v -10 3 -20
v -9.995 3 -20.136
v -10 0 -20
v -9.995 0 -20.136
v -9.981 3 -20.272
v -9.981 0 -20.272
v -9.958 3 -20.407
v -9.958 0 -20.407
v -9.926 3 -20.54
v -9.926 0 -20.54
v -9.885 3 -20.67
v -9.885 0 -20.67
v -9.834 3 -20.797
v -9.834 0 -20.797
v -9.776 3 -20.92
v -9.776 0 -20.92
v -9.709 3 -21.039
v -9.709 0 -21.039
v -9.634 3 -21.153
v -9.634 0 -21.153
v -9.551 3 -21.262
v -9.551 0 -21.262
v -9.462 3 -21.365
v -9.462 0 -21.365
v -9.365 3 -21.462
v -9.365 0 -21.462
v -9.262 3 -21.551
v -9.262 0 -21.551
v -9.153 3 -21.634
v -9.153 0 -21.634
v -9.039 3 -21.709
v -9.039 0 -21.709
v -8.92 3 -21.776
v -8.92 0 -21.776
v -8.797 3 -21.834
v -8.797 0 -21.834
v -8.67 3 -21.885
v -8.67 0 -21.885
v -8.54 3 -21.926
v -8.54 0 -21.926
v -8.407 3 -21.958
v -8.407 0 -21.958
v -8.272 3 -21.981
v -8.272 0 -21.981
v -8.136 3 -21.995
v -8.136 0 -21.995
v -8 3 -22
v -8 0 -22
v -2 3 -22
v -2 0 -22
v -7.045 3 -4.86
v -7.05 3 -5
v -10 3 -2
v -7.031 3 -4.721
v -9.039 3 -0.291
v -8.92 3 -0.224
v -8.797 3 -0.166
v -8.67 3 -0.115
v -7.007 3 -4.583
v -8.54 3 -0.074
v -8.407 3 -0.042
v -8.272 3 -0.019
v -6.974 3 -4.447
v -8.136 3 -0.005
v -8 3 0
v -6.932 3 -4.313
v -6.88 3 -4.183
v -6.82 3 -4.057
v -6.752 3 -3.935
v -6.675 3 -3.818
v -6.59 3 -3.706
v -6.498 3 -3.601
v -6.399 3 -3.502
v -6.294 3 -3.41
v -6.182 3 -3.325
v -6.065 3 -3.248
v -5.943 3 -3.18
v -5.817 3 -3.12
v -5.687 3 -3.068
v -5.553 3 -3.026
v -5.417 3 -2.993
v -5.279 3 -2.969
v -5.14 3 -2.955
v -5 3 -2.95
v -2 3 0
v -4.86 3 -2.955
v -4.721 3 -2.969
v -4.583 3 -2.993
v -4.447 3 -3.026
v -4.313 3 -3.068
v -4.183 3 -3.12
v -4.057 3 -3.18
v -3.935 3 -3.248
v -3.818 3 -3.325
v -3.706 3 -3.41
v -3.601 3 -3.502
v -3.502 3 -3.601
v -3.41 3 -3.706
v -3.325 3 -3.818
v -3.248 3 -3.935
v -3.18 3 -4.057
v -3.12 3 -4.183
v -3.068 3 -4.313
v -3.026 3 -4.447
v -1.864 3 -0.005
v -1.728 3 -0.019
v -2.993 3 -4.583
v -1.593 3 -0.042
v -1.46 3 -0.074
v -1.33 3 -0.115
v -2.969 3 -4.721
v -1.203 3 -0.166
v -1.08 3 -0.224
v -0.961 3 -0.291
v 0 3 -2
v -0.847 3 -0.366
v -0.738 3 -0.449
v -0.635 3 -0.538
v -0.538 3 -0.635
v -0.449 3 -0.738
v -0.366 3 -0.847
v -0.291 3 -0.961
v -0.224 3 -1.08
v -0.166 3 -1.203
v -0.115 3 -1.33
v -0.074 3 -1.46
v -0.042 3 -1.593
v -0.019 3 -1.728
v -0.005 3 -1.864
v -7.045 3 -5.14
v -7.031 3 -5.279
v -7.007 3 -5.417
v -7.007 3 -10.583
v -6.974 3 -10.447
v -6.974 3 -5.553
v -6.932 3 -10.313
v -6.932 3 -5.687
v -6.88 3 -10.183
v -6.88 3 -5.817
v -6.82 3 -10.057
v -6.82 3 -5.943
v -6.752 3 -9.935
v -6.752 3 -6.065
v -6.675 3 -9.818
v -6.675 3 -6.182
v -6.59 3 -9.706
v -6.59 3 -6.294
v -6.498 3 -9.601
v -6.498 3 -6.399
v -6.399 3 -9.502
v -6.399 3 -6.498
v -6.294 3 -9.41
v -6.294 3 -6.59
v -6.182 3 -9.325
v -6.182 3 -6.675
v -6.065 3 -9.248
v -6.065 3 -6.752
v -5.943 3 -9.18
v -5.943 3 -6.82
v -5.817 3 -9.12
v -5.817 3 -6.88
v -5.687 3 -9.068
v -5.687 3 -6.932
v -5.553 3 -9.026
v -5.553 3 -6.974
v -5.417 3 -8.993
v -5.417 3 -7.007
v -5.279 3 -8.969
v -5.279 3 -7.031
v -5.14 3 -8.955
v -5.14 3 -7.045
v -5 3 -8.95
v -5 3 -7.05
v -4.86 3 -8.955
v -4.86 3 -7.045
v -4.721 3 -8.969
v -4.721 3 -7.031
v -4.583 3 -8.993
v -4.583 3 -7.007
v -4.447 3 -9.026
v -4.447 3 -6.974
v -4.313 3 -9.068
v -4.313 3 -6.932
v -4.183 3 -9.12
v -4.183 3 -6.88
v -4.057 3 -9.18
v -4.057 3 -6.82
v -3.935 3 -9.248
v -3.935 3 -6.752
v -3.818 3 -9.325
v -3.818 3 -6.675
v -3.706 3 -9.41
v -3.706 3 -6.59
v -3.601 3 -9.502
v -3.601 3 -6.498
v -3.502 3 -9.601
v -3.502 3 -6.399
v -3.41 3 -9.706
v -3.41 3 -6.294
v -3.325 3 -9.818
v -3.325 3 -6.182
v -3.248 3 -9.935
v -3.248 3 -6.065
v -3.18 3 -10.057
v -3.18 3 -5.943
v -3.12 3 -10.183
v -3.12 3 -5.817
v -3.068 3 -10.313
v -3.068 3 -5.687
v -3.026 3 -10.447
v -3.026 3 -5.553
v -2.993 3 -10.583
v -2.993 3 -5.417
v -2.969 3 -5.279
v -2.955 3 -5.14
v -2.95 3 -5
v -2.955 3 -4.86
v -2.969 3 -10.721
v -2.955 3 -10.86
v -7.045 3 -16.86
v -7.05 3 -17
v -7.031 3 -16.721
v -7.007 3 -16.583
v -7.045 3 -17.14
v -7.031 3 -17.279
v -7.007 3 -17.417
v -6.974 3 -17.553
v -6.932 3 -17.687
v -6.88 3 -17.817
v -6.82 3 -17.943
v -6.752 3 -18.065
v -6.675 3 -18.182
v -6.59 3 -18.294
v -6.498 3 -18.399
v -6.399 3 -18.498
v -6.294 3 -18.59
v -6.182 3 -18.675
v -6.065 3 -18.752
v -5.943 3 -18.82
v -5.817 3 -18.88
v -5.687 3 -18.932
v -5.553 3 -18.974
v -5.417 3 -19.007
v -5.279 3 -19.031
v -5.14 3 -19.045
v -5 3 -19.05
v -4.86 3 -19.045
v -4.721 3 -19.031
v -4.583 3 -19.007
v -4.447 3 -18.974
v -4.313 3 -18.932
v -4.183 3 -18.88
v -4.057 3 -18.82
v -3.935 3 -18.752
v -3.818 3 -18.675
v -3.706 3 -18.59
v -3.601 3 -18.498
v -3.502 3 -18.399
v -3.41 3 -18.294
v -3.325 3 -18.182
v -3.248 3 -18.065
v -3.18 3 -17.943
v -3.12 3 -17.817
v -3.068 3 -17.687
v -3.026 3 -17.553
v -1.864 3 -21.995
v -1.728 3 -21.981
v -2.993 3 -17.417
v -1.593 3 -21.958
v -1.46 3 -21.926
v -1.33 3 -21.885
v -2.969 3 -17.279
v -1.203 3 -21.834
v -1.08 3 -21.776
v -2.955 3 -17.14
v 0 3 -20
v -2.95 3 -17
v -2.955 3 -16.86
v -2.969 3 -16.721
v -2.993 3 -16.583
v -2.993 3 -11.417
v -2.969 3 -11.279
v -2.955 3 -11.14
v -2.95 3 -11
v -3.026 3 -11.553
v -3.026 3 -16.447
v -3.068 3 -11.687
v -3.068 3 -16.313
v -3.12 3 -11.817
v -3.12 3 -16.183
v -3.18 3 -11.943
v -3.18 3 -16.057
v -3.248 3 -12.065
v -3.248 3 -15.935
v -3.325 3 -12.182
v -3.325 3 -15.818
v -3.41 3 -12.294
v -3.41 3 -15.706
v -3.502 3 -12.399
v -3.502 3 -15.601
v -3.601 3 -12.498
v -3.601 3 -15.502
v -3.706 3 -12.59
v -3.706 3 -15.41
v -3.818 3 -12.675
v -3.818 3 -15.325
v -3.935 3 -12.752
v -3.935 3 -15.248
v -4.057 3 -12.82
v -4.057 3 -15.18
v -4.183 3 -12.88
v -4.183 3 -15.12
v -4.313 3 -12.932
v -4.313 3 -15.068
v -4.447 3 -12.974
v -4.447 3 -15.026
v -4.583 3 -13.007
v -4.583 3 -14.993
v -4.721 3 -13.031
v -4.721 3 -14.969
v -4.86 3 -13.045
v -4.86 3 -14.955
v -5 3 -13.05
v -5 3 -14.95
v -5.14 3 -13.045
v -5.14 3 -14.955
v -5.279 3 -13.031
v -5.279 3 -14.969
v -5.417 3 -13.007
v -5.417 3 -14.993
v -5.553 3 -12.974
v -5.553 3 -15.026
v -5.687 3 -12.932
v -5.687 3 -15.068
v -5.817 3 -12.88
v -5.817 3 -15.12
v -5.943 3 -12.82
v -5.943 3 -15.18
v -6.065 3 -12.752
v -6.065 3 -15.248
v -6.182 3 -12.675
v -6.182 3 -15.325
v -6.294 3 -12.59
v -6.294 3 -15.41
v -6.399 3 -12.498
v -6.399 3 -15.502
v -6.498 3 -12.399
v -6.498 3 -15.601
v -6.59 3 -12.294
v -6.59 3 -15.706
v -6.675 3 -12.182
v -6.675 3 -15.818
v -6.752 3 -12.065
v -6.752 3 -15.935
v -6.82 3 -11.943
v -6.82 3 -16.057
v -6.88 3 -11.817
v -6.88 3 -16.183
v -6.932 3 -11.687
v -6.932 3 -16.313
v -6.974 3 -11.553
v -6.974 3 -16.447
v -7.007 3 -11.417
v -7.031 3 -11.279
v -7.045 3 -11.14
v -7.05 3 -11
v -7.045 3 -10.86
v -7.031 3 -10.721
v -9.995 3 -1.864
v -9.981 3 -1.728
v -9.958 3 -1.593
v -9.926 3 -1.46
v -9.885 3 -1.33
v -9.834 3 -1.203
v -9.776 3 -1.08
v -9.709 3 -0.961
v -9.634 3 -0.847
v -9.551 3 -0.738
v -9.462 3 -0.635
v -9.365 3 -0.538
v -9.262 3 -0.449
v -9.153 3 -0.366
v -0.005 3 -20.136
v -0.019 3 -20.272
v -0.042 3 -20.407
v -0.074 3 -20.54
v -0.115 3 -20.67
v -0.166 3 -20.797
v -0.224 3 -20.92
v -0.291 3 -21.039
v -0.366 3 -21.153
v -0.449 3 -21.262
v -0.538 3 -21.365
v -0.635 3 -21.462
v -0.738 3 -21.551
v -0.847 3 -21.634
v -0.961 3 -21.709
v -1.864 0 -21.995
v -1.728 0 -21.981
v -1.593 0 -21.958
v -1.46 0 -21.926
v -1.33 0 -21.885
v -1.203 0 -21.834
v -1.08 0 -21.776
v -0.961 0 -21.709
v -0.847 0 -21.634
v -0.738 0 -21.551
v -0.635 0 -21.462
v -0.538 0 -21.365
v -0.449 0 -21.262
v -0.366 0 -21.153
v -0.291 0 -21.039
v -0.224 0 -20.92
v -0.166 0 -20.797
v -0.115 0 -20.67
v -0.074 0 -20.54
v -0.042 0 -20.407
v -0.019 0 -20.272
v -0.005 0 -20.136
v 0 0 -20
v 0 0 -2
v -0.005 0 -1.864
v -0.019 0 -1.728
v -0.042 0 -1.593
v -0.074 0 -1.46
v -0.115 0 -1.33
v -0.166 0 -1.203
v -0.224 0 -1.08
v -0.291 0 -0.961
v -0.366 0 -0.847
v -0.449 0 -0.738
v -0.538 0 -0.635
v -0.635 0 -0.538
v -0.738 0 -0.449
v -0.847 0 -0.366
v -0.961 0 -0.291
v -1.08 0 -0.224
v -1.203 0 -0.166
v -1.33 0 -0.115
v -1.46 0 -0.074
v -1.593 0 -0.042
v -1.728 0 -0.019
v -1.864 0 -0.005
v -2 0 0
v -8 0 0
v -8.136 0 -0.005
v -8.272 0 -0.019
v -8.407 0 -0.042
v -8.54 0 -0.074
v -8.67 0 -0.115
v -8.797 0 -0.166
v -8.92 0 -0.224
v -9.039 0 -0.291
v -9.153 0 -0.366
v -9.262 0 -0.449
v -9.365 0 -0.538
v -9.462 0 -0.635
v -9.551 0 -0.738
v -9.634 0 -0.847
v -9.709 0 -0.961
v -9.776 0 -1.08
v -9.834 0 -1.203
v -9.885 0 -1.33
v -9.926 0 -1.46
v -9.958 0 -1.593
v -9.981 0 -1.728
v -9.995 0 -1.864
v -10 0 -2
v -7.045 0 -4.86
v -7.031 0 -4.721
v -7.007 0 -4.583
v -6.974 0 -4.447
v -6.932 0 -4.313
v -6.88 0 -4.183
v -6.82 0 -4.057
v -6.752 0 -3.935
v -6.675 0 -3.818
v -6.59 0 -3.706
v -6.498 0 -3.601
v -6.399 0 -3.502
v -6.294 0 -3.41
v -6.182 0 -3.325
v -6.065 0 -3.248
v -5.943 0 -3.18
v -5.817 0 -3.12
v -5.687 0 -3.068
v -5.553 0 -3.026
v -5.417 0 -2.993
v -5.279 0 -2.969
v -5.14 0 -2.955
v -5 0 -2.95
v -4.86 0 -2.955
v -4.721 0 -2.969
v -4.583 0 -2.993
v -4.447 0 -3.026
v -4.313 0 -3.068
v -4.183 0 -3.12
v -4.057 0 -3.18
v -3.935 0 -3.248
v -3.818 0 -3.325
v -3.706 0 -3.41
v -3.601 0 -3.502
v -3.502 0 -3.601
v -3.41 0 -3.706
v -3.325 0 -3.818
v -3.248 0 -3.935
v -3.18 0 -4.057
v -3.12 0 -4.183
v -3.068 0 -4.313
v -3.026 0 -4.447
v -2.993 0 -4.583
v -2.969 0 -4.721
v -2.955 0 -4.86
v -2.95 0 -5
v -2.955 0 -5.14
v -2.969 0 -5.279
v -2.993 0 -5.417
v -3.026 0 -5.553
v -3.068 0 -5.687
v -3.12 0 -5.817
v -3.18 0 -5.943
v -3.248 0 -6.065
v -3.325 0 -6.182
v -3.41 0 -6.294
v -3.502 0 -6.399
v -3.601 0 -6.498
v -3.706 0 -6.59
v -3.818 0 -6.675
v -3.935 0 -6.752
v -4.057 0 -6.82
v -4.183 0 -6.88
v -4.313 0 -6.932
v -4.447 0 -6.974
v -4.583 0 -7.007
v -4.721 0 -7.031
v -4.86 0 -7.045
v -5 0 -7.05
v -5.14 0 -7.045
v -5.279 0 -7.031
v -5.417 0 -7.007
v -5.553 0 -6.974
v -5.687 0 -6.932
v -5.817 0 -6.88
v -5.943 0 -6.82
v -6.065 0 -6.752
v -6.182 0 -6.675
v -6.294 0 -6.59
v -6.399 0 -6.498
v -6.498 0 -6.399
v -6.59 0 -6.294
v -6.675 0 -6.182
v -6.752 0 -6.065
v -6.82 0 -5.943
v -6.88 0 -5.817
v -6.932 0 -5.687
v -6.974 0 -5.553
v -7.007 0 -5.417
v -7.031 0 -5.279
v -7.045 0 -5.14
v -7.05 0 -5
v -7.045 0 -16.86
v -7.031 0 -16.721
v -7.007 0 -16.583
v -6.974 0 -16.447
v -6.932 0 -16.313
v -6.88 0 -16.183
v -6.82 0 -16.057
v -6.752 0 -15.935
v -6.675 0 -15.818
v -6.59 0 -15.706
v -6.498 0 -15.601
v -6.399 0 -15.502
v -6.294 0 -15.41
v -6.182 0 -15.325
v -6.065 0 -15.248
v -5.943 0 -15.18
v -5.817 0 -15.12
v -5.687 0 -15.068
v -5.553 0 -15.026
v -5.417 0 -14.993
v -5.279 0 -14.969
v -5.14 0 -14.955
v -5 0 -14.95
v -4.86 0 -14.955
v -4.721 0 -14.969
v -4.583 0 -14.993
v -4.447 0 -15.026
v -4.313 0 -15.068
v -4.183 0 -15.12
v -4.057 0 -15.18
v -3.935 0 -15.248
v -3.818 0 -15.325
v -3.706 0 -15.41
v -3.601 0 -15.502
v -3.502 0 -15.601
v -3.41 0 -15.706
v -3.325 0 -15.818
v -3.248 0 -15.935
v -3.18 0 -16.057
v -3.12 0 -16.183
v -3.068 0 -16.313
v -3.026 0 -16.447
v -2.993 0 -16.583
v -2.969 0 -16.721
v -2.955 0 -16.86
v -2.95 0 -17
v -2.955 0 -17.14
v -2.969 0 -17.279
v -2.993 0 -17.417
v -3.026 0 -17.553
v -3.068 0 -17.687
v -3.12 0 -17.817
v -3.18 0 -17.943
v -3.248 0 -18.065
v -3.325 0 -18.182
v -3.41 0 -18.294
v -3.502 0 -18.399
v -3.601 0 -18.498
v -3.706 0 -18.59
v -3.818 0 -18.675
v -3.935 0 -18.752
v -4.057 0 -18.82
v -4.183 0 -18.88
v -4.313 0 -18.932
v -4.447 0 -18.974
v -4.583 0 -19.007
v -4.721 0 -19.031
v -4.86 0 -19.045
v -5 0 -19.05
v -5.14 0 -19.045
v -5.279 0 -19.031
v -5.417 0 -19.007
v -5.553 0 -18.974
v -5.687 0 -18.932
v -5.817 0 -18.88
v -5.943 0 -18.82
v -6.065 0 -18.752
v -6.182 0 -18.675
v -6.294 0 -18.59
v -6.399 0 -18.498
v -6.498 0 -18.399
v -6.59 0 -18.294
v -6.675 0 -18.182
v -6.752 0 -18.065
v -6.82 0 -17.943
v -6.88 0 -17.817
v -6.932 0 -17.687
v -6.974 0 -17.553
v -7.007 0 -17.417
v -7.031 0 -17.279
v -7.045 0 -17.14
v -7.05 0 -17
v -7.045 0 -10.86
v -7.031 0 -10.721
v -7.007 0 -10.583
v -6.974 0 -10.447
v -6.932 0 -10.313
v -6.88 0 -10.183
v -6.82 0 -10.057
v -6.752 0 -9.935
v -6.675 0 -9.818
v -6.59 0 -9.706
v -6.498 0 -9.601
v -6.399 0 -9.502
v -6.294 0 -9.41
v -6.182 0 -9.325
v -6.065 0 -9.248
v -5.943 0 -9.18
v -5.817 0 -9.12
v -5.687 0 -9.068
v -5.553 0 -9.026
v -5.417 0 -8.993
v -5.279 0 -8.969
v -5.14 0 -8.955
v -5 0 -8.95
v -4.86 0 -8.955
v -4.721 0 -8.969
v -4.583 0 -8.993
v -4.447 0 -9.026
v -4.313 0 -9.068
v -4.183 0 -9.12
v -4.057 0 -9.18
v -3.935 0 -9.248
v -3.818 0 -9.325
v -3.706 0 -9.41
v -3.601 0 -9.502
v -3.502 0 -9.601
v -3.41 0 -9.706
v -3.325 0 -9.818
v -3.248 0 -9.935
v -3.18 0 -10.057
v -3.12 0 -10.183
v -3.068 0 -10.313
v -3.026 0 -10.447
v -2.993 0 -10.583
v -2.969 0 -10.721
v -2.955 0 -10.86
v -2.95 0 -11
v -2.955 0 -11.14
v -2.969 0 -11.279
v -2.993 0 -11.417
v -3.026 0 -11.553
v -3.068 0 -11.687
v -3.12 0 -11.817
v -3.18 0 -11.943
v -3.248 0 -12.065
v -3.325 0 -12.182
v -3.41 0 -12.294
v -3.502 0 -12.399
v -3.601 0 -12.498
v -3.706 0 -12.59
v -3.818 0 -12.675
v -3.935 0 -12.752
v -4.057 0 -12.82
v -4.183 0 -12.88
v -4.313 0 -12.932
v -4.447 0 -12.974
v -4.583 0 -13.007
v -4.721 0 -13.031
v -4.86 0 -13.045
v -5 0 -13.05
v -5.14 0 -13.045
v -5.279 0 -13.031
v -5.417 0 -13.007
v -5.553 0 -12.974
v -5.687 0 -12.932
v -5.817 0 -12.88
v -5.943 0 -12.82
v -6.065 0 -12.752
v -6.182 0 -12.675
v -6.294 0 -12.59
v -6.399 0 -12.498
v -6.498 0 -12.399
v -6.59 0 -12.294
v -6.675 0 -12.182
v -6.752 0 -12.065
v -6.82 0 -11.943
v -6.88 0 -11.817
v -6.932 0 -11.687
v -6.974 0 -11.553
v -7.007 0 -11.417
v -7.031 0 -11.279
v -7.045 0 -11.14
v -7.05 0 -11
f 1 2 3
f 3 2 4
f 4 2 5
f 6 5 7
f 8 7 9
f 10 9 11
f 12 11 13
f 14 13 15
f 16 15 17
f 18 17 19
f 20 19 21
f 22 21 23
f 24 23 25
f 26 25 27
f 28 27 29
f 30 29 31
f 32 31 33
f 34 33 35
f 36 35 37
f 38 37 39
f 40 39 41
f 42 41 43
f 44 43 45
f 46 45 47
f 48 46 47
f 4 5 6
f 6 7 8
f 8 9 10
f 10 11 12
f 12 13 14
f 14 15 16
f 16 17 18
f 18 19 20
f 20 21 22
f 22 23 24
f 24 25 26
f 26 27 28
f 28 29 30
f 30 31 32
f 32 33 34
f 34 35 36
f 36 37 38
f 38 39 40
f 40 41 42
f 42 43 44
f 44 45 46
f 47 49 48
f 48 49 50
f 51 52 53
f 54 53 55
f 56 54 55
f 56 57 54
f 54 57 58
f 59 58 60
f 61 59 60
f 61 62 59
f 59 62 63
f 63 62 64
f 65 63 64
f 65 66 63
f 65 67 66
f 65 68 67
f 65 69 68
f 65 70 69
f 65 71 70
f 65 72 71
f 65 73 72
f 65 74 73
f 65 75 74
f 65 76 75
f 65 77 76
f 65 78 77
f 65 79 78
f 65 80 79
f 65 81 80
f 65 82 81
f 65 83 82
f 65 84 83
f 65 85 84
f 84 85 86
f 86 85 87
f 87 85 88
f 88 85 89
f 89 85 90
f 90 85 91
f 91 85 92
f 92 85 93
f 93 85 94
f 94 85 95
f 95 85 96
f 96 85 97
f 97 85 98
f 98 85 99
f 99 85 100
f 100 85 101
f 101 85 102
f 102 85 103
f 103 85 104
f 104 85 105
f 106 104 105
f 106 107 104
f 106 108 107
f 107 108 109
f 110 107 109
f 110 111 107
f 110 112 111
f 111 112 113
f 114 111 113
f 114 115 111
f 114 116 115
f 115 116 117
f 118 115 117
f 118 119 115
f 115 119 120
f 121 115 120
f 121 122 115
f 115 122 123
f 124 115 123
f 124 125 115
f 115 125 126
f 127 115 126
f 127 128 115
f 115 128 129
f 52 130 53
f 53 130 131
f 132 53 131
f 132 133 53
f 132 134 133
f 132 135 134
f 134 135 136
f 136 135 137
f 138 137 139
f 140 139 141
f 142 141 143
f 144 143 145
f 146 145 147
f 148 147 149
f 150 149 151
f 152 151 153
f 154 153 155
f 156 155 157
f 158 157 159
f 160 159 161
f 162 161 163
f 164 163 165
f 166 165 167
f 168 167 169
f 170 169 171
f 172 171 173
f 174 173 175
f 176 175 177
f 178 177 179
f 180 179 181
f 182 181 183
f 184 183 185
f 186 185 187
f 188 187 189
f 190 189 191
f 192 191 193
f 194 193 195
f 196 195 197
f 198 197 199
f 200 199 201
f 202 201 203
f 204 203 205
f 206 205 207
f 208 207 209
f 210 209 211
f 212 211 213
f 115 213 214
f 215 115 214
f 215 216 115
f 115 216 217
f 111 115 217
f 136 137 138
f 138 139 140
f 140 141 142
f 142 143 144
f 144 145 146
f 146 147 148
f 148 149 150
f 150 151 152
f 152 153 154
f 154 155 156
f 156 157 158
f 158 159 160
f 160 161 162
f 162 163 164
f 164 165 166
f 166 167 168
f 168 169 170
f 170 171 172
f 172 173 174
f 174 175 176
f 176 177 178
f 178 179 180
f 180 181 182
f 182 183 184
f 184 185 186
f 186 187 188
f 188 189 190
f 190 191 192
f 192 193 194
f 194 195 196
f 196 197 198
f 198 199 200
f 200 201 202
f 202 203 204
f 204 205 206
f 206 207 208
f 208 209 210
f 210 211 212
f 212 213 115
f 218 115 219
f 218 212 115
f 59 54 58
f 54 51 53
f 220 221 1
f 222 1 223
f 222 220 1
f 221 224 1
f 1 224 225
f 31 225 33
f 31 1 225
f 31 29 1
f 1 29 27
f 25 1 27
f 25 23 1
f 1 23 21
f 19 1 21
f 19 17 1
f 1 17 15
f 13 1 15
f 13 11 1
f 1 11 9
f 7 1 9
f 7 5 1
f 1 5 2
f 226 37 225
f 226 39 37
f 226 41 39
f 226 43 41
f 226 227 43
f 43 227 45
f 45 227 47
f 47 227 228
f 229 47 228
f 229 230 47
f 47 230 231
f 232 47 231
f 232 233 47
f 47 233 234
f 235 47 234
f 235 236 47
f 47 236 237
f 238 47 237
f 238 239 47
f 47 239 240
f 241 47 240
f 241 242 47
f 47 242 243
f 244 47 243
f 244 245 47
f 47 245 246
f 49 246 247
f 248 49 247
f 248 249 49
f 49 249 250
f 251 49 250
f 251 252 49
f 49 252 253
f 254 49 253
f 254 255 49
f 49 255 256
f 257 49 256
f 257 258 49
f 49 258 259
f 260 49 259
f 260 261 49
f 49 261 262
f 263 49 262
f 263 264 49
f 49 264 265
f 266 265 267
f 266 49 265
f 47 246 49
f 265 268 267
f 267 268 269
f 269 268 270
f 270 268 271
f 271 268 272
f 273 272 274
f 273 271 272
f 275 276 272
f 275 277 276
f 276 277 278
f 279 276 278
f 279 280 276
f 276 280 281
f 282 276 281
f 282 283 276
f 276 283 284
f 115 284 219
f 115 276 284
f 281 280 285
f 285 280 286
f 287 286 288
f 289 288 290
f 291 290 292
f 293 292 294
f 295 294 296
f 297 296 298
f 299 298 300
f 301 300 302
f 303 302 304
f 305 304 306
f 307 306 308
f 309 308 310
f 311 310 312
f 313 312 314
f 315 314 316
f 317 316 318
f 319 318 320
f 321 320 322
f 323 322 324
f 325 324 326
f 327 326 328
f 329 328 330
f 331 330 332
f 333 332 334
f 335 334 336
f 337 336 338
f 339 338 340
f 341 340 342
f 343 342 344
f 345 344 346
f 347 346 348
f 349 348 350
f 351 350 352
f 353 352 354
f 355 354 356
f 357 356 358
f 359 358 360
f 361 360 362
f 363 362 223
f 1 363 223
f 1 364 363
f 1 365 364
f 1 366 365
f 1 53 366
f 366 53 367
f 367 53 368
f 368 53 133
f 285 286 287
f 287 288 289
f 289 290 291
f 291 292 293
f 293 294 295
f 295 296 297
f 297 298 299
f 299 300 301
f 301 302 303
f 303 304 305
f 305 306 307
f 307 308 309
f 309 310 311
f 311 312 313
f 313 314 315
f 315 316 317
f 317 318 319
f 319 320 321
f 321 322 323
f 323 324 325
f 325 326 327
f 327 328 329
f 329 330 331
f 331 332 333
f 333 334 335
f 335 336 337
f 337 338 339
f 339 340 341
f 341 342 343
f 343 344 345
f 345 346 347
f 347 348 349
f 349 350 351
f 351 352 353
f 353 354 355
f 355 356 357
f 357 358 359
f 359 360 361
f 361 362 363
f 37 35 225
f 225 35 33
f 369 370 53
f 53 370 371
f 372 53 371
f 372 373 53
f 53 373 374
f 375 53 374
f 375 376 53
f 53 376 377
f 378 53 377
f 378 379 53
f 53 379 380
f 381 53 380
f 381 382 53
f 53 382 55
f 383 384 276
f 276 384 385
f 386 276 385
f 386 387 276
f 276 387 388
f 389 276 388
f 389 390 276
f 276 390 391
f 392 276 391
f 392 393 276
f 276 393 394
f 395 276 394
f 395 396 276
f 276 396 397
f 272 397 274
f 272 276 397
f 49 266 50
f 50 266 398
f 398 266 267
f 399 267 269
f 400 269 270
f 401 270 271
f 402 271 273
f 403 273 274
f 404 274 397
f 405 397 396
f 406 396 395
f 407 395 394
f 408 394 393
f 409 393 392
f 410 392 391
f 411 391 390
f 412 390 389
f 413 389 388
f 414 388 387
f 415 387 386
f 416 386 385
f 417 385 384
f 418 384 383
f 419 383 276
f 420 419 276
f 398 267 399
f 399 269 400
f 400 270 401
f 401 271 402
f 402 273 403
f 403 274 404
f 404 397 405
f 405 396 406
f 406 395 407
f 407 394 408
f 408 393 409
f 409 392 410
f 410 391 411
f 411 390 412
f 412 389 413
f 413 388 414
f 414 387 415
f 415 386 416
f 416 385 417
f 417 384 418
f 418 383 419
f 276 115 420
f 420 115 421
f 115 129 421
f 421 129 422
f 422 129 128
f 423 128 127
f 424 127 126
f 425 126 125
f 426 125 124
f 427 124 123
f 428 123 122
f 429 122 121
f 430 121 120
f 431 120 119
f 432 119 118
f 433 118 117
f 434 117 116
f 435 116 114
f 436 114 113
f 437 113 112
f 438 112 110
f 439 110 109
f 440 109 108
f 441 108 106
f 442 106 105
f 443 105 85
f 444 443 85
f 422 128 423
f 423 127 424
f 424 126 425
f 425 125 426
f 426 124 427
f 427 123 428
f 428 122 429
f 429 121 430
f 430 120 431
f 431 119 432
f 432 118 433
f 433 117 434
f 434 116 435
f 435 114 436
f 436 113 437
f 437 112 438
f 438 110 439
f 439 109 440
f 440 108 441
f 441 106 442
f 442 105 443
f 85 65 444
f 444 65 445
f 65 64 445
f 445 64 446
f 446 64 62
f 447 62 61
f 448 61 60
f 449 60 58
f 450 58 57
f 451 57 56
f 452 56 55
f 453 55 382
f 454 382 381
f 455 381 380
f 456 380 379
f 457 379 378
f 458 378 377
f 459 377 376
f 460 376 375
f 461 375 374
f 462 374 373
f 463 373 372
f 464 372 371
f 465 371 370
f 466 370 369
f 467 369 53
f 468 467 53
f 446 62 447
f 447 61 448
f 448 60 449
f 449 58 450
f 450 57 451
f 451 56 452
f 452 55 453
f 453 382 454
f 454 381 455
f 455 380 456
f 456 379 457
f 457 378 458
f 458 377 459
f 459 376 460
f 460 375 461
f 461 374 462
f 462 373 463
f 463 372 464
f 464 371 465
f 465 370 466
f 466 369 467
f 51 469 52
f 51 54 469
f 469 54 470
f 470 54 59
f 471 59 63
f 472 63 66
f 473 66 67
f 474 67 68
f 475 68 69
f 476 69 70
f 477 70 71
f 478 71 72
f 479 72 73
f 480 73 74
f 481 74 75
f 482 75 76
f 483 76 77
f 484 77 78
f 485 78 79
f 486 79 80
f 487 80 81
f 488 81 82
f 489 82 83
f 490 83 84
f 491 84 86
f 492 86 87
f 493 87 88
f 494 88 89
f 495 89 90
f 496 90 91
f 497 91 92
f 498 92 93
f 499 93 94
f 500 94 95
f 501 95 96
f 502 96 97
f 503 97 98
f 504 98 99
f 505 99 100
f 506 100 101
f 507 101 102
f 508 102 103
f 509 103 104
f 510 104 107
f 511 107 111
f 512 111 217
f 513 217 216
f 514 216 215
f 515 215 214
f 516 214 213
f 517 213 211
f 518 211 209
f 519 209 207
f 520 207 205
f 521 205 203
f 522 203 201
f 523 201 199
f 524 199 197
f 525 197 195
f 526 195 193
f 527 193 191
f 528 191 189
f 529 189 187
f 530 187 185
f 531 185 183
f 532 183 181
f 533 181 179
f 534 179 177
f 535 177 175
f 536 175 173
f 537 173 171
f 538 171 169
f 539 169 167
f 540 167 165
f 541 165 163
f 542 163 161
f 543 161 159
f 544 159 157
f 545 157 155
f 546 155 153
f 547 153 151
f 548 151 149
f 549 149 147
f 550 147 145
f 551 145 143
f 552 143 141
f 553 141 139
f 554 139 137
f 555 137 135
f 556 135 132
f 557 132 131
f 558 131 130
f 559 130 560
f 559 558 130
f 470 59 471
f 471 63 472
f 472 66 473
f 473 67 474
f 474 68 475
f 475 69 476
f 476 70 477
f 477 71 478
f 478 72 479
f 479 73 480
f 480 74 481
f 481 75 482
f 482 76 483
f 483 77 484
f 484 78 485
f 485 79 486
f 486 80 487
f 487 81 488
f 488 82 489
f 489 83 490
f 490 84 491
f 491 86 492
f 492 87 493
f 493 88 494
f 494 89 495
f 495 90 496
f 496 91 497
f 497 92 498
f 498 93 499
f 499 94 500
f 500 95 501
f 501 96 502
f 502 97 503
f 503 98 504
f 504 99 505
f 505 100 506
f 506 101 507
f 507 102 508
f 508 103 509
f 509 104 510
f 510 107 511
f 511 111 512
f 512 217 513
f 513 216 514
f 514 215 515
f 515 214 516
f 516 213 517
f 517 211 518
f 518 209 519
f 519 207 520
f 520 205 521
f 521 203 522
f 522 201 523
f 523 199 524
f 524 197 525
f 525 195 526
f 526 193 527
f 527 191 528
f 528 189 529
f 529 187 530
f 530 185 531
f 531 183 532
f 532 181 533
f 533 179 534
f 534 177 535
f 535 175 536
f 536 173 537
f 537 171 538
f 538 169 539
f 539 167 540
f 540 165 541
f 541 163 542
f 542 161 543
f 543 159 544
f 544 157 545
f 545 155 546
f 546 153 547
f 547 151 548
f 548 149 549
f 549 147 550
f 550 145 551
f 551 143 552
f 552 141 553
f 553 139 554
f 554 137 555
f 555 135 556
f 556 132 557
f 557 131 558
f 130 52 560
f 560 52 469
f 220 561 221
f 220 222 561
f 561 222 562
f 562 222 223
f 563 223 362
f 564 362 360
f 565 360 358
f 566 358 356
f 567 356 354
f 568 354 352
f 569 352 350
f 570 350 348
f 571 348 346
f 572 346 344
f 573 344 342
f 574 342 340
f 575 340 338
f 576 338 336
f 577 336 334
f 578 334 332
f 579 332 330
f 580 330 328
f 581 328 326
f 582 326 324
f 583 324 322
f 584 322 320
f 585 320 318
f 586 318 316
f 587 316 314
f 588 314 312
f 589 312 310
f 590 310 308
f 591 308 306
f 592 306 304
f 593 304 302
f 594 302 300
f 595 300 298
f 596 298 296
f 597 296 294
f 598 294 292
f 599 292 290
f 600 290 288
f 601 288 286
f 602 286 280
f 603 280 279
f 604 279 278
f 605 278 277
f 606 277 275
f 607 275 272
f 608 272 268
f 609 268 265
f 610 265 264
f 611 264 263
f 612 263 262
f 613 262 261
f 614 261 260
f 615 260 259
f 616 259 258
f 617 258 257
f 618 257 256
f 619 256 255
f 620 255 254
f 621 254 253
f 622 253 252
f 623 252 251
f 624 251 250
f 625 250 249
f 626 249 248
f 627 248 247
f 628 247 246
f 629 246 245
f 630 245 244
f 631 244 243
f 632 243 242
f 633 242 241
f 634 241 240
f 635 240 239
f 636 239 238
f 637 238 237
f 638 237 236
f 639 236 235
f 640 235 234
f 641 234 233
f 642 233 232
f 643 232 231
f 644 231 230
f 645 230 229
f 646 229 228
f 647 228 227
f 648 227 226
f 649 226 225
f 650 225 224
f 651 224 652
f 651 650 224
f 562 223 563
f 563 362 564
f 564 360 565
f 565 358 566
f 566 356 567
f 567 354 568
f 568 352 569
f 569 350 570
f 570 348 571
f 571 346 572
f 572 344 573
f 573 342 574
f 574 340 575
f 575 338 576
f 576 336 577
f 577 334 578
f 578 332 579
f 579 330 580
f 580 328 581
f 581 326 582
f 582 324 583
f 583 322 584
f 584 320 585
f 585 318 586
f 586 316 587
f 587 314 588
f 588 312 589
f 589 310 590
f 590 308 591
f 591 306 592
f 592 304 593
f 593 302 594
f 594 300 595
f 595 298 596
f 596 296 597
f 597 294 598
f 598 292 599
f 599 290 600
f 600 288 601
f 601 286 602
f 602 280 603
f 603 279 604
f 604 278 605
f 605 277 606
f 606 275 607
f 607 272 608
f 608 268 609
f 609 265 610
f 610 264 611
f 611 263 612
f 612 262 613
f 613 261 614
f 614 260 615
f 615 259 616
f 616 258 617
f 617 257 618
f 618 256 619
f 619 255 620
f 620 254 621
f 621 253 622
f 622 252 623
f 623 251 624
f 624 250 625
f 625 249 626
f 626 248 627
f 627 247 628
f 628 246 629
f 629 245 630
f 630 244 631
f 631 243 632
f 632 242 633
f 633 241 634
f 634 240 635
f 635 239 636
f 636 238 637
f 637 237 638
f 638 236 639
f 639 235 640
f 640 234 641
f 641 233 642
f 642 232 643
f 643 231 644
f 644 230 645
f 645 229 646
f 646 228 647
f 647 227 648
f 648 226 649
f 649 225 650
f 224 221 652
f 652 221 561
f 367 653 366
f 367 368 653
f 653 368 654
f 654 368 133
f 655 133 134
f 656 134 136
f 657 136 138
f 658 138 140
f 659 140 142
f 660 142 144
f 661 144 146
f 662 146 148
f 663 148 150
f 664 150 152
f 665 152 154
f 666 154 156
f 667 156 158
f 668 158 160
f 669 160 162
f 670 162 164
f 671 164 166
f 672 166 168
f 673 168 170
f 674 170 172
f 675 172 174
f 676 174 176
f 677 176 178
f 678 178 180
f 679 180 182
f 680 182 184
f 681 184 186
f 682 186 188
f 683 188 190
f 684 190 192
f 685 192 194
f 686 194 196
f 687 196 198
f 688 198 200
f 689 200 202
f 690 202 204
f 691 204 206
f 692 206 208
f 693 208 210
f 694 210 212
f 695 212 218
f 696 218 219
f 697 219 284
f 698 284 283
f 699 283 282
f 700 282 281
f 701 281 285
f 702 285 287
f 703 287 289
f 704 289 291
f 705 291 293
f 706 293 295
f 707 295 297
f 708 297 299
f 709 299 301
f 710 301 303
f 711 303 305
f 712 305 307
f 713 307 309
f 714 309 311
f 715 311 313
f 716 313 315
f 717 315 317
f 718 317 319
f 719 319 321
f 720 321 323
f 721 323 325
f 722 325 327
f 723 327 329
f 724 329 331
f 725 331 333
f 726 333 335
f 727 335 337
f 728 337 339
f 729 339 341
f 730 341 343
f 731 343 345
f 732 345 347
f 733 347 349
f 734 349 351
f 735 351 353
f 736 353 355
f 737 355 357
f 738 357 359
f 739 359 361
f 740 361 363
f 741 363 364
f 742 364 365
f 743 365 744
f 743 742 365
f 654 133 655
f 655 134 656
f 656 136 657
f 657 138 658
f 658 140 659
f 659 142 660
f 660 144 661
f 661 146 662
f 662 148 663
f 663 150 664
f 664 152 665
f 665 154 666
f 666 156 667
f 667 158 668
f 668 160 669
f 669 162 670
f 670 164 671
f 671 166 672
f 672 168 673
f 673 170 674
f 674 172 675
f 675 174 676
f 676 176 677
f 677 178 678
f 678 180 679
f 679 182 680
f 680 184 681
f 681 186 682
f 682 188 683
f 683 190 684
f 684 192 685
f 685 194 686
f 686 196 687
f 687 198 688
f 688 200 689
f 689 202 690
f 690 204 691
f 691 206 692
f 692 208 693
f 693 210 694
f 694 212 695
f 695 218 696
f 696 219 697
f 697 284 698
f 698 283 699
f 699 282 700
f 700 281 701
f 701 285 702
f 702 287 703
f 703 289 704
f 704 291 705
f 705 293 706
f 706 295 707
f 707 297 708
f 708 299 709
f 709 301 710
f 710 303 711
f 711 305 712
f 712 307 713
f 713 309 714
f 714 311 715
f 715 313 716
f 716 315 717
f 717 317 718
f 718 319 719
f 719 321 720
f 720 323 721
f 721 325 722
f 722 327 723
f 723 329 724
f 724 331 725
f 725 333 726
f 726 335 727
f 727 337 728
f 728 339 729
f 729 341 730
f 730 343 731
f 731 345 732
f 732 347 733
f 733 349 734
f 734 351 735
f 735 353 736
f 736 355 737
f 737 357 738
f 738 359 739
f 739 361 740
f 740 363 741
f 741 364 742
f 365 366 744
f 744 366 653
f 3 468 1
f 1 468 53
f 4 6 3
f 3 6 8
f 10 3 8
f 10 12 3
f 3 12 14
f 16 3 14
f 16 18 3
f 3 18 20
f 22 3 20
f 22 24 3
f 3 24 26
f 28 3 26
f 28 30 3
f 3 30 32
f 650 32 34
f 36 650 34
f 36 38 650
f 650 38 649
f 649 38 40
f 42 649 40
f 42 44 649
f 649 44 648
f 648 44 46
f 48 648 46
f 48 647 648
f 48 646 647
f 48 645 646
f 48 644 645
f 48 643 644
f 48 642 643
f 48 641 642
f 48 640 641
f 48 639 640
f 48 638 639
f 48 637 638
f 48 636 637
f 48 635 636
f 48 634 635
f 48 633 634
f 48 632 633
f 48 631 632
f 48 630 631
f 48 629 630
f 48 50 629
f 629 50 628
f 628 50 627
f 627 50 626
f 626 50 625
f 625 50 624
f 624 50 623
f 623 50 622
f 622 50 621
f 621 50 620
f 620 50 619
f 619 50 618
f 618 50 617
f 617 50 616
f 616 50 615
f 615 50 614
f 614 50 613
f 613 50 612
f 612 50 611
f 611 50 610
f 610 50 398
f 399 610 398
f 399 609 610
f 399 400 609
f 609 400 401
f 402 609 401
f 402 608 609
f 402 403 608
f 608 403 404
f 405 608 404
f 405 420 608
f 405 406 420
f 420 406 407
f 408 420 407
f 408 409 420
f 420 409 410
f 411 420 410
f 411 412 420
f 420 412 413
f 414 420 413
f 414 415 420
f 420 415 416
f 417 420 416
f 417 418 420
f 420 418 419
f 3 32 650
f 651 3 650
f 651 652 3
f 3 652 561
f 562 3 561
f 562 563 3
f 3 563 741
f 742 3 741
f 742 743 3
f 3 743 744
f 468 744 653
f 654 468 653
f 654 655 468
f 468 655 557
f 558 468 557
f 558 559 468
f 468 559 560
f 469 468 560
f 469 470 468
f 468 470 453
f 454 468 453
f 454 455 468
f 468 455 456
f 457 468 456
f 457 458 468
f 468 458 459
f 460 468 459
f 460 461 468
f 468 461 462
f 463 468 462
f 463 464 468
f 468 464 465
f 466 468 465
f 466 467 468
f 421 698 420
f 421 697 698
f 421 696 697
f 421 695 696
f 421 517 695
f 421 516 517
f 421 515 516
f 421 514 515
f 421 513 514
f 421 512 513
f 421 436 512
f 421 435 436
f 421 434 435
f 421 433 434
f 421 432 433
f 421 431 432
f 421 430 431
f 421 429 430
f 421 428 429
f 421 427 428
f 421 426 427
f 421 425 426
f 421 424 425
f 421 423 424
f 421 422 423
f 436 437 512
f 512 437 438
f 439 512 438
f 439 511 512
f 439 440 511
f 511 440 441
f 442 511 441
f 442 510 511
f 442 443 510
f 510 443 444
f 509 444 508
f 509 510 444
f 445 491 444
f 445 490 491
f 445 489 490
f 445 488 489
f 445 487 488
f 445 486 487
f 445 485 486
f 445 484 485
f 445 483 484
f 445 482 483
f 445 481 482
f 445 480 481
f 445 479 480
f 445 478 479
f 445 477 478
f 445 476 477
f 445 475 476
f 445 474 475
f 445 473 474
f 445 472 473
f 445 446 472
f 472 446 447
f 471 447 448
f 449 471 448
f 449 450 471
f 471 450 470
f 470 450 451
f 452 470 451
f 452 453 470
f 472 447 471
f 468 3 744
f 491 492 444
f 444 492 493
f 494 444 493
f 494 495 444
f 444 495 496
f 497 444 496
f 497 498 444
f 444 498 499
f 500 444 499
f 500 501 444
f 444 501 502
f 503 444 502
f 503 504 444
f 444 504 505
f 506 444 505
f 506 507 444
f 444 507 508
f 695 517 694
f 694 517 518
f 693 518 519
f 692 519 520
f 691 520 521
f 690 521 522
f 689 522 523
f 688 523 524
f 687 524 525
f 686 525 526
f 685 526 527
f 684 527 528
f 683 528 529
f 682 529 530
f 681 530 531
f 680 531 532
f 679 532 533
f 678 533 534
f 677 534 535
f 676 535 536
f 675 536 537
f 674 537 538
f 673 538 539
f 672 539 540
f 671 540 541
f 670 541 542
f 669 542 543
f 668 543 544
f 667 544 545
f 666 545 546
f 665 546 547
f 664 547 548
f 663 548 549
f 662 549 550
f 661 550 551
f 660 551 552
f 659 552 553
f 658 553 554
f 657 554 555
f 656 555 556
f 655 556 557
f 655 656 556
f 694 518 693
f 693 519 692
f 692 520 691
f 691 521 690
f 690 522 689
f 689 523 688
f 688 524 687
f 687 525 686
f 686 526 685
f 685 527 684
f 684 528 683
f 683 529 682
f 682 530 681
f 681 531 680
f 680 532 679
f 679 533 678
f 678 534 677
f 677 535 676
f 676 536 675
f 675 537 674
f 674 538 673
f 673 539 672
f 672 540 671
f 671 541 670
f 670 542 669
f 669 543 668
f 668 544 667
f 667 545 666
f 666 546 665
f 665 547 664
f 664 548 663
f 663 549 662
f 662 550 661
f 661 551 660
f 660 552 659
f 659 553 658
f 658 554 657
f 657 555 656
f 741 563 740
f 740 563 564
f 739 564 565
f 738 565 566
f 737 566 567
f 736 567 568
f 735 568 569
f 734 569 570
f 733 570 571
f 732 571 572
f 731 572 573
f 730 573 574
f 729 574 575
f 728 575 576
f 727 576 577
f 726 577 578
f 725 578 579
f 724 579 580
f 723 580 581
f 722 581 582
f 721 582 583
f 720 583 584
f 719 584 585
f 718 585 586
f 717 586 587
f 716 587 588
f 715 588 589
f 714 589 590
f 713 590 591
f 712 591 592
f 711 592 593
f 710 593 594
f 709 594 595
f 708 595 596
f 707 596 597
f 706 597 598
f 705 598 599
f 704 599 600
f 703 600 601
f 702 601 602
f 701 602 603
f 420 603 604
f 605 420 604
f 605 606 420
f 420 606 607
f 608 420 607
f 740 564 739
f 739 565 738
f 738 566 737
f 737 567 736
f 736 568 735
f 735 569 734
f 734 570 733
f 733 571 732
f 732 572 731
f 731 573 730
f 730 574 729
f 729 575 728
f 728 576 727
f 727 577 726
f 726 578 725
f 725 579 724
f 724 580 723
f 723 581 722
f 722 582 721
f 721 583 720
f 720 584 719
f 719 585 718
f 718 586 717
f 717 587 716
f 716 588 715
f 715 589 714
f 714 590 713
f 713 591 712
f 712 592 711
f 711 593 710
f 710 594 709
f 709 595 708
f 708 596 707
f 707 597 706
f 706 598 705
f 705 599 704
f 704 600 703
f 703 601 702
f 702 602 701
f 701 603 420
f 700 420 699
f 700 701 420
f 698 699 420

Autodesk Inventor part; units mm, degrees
ref_plane "YZ Plane" through (0, 0, 0) normal (1, 0, 0) x (0, 1, 0)
ref_plane "XZ Plane" through (0, 0, 0) normal (0, 1, 0) x (-1, 0, 0)
ref_plane "XY Plane" through (0, 0, 0) normal (0, 0, 1) x (1, 0, 0)
sketch "Esquisse1" plane through (0, 0, 0) normal (0, 1, 0) x (-1, 0, 0)
  line L0 (0, 0) -> (10, 0)
  line L1 (10, 0) -> (10, -22)
  line L2 (10, -22) -> (0, -22)
  line L3 (0, -22) -> (0, 0)
  line L4 (5, 0) -> (5, -22) construction
  line L5 (10, -11) -> (0, -11) construction
  circle A0 centre (5, -11) radius 2.05
  circle A1 centre (5, -17) radius 2.05
  circle A2 centre (5, -5) radius 2.05
  dimension "d0" = 4.1
  dimension "d1" = 5
  dimension "d2" = 6
  dimension "d3" = 5
extrude "Extrusion1" add sketch "Esquisse1" along normal blind 3
fillet "Congé1" radius 2 4 edges at (-10, 1.5, 0) (0, 1.5, 0) (0, 1.5, -22) (-10, 1.5, -22)
equation "\"d3\" = d1"
properties part number "spacer"
